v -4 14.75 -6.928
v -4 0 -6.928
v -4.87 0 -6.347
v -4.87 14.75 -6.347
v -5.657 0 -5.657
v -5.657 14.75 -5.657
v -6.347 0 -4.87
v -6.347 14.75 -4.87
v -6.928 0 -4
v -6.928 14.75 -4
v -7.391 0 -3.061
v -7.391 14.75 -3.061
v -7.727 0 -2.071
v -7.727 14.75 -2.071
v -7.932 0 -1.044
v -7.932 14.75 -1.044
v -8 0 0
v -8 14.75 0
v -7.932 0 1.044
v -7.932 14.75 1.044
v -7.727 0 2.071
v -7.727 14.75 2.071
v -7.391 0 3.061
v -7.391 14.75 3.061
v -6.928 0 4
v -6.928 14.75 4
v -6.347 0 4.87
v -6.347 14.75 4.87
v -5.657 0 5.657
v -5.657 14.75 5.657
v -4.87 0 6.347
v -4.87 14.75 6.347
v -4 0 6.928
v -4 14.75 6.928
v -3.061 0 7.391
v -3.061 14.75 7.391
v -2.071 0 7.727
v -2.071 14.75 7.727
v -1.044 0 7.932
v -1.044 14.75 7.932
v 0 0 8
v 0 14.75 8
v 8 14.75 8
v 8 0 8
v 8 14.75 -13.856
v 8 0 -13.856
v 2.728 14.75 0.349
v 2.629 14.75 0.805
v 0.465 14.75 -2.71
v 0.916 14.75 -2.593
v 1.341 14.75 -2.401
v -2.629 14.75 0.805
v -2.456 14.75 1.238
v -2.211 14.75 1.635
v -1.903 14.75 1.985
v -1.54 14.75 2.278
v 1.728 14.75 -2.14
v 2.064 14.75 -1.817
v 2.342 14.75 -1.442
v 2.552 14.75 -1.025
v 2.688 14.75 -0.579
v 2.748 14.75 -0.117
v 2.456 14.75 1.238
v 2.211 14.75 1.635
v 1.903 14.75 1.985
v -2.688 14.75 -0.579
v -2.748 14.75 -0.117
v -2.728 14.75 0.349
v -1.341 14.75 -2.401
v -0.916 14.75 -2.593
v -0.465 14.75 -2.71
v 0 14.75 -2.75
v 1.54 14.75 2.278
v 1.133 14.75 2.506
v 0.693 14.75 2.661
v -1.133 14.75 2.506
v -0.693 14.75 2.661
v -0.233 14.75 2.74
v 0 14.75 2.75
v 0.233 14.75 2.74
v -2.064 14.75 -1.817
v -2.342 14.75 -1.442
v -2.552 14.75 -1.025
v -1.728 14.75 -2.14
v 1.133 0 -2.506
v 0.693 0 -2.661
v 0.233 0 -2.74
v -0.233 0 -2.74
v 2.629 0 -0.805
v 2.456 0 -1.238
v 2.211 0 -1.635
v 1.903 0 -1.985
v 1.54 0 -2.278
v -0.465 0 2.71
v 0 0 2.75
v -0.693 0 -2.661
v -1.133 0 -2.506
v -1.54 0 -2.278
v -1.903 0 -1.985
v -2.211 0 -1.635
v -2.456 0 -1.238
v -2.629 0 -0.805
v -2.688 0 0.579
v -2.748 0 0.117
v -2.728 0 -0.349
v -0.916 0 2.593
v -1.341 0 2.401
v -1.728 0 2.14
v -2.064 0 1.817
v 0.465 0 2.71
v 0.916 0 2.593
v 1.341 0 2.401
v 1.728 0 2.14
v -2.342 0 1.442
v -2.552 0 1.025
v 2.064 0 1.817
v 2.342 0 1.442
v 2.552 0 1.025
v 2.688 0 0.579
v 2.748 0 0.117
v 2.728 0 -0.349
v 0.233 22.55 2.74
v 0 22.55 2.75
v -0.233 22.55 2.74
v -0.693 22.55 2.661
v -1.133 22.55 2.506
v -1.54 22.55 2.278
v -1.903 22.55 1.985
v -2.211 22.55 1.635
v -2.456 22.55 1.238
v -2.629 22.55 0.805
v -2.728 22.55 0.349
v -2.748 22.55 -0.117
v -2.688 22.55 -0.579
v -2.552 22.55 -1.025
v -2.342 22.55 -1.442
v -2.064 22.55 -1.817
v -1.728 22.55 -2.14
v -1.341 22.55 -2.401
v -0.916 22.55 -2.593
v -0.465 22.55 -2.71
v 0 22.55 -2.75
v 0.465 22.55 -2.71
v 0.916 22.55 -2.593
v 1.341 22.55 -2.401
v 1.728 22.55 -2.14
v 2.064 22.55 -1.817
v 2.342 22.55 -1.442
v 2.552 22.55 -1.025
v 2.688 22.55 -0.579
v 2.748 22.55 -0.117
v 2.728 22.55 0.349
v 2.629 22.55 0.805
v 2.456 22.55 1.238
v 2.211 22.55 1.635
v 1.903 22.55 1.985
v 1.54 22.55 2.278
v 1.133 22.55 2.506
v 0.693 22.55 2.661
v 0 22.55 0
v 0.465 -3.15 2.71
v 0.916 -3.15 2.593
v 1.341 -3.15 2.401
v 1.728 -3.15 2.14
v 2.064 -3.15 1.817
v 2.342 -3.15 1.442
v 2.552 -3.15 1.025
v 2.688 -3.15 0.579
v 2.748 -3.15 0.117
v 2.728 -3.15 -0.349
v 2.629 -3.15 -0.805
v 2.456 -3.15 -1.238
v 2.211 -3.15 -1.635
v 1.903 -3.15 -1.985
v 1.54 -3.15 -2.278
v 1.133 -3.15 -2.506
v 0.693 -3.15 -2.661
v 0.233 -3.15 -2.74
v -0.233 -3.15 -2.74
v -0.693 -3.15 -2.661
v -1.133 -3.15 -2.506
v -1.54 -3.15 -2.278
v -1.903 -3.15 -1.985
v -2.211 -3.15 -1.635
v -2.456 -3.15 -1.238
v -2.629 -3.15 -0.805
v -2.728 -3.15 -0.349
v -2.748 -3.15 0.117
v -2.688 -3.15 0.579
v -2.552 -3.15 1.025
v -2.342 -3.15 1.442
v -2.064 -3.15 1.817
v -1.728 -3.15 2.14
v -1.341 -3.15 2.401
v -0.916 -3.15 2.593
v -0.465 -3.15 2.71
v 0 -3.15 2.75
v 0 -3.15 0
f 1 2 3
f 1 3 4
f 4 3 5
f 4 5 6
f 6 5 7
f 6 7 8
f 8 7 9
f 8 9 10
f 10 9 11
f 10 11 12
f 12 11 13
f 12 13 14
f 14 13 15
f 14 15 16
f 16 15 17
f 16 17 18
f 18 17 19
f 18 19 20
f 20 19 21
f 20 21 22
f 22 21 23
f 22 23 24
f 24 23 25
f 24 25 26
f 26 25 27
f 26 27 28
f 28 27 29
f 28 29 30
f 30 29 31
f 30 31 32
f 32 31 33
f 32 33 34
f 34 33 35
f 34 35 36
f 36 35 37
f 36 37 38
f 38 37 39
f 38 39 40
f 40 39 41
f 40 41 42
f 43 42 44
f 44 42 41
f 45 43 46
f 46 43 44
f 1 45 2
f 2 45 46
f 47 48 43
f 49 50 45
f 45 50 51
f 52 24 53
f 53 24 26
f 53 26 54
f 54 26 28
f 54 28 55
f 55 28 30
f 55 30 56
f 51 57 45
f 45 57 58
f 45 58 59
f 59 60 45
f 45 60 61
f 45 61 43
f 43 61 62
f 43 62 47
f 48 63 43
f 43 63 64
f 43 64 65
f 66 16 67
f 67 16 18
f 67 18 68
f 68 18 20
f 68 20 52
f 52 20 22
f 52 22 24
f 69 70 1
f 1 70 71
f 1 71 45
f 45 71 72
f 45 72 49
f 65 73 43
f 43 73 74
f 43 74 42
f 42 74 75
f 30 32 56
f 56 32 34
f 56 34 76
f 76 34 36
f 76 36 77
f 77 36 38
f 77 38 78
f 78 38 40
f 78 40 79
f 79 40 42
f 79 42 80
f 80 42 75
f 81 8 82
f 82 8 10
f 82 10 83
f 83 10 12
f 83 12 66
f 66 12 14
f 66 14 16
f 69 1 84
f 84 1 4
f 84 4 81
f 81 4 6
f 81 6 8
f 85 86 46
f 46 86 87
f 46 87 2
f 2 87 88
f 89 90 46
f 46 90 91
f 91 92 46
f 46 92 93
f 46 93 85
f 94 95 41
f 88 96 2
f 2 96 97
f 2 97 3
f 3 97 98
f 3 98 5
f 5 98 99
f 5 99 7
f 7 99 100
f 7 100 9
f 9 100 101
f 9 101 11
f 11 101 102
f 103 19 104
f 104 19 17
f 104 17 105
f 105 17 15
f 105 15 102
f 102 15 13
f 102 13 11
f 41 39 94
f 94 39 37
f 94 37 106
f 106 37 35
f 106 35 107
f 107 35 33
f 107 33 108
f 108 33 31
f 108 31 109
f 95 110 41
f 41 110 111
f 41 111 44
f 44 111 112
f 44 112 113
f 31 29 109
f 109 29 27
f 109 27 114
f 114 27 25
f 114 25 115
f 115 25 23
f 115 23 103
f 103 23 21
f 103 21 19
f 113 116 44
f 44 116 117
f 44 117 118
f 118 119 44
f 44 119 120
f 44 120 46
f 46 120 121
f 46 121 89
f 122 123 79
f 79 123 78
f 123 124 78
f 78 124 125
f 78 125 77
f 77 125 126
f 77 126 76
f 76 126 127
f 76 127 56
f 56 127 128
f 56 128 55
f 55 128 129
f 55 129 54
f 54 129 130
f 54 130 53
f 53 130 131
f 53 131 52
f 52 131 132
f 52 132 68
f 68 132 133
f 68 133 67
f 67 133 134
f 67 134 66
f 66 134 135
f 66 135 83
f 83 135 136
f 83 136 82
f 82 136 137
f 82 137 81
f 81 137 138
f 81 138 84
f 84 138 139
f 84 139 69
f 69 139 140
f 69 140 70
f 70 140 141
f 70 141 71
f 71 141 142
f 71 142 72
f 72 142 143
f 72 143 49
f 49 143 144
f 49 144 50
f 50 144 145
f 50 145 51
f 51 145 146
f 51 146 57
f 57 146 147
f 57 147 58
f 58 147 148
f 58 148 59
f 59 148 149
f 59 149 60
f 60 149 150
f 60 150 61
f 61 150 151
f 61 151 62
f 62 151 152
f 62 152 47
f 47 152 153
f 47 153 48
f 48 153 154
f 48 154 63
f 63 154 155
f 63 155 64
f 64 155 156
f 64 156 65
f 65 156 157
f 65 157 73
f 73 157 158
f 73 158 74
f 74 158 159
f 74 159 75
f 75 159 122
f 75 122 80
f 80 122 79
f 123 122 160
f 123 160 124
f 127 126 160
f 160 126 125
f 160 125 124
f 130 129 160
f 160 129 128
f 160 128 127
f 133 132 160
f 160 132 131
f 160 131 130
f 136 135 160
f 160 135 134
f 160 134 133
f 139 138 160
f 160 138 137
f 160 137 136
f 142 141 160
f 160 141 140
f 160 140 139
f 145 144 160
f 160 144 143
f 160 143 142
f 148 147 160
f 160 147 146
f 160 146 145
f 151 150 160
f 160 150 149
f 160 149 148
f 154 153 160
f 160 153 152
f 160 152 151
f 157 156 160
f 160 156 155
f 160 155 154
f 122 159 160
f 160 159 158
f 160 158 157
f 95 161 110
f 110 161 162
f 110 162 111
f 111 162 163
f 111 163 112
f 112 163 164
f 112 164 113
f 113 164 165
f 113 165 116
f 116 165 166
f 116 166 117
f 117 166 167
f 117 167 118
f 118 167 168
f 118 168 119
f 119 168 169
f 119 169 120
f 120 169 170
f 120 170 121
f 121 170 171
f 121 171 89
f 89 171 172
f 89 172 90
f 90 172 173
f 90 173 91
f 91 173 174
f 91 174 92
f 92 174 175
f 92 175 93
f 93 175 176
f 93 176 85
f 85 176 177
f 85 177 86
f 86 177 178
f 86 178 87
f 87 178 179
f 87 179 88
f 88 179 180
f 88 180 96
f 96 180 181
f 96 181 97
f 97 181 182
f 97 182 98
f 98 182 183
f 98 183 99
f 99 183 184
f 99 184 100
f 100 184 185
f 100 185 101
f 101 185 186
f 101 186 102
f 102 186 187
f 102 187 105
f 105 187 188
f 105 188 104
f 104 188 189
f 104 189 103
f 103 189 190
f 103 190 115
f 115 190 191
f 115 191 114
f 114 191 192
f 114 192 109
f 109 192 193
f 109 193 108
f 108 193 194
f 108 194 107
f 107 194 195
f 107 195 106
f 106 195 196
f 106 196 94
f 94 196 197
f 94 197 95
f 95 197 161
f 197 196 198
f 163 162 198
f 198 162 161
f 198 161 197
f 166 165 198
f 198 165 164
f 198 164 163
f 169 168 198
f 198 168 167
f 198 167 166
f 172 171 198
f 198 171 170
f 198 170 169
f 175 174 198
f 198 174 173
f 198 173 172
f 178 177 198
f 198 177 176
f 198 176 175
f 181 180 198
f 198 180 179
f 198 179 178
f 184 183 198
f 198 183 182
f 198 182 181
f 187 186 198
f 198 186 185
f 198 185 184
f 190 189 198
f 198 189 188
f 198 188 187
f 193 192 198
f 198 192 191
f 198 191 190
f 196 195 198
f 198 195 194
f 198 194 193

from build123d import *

# Parameters (mm, degrees)
BOSS_EXTRU_1_DEPTH = 14.75
ESQUISSE2_R        = 2.75
BOSS_EXTRU_6_DEPTH = 7.8
BOSS_EXTRU_7_START = -17.9
ESQUISSE2_4_R      = 2.75
BOSS_EXTRU_7_DEPTH = 17.9


with BuildPart() as part:
    # Esquisse1 → Boss.-Extru.1 (new body)
    with BuildSketch(Plane(origin=(0, 0, 0), x_dir=(1, 0, 0), z_dir=(0, 1, 0))):
        with BuildLine():
            Line((0, -8), (8, -8))
            Line((8, -8), (8, 13.856406461))
            Line((8, 13.856406461), (-4, 6.92820323))
            ThreePointArc((-4, 6.92820323), (-7.72740661, -2.070552361), (0, -8))
        make_face()
    extrude(amount=BOSS_EXTRU_1_DEPTH)

    # Esquisse2 → Boss.-Extru.6 (add)
    with BuildSketch(Plane(origin=(0, 14.75, 0), x_dir=(1, 0, 0), z_dir=(0, 1, 0))):
        Circle(ESQUISSE2_R)
    extrude(amount=BOSS_EXTRU_6_DEPTH)

    # Esquisse2<4> → Boss.-Extru.7 (add)
    with BuildSketch(Plane(origin=(0, 14.75, 0), x_dir=(1, 0, 0), z_dir=(0, 1, 0)).offset(BOSS_EXTRU_7_START)):
        Circle(ESQUISSE2_4_R)
    extrude(amount=BOSS_EXTRU_7_DEPTH)


solid = part.part
